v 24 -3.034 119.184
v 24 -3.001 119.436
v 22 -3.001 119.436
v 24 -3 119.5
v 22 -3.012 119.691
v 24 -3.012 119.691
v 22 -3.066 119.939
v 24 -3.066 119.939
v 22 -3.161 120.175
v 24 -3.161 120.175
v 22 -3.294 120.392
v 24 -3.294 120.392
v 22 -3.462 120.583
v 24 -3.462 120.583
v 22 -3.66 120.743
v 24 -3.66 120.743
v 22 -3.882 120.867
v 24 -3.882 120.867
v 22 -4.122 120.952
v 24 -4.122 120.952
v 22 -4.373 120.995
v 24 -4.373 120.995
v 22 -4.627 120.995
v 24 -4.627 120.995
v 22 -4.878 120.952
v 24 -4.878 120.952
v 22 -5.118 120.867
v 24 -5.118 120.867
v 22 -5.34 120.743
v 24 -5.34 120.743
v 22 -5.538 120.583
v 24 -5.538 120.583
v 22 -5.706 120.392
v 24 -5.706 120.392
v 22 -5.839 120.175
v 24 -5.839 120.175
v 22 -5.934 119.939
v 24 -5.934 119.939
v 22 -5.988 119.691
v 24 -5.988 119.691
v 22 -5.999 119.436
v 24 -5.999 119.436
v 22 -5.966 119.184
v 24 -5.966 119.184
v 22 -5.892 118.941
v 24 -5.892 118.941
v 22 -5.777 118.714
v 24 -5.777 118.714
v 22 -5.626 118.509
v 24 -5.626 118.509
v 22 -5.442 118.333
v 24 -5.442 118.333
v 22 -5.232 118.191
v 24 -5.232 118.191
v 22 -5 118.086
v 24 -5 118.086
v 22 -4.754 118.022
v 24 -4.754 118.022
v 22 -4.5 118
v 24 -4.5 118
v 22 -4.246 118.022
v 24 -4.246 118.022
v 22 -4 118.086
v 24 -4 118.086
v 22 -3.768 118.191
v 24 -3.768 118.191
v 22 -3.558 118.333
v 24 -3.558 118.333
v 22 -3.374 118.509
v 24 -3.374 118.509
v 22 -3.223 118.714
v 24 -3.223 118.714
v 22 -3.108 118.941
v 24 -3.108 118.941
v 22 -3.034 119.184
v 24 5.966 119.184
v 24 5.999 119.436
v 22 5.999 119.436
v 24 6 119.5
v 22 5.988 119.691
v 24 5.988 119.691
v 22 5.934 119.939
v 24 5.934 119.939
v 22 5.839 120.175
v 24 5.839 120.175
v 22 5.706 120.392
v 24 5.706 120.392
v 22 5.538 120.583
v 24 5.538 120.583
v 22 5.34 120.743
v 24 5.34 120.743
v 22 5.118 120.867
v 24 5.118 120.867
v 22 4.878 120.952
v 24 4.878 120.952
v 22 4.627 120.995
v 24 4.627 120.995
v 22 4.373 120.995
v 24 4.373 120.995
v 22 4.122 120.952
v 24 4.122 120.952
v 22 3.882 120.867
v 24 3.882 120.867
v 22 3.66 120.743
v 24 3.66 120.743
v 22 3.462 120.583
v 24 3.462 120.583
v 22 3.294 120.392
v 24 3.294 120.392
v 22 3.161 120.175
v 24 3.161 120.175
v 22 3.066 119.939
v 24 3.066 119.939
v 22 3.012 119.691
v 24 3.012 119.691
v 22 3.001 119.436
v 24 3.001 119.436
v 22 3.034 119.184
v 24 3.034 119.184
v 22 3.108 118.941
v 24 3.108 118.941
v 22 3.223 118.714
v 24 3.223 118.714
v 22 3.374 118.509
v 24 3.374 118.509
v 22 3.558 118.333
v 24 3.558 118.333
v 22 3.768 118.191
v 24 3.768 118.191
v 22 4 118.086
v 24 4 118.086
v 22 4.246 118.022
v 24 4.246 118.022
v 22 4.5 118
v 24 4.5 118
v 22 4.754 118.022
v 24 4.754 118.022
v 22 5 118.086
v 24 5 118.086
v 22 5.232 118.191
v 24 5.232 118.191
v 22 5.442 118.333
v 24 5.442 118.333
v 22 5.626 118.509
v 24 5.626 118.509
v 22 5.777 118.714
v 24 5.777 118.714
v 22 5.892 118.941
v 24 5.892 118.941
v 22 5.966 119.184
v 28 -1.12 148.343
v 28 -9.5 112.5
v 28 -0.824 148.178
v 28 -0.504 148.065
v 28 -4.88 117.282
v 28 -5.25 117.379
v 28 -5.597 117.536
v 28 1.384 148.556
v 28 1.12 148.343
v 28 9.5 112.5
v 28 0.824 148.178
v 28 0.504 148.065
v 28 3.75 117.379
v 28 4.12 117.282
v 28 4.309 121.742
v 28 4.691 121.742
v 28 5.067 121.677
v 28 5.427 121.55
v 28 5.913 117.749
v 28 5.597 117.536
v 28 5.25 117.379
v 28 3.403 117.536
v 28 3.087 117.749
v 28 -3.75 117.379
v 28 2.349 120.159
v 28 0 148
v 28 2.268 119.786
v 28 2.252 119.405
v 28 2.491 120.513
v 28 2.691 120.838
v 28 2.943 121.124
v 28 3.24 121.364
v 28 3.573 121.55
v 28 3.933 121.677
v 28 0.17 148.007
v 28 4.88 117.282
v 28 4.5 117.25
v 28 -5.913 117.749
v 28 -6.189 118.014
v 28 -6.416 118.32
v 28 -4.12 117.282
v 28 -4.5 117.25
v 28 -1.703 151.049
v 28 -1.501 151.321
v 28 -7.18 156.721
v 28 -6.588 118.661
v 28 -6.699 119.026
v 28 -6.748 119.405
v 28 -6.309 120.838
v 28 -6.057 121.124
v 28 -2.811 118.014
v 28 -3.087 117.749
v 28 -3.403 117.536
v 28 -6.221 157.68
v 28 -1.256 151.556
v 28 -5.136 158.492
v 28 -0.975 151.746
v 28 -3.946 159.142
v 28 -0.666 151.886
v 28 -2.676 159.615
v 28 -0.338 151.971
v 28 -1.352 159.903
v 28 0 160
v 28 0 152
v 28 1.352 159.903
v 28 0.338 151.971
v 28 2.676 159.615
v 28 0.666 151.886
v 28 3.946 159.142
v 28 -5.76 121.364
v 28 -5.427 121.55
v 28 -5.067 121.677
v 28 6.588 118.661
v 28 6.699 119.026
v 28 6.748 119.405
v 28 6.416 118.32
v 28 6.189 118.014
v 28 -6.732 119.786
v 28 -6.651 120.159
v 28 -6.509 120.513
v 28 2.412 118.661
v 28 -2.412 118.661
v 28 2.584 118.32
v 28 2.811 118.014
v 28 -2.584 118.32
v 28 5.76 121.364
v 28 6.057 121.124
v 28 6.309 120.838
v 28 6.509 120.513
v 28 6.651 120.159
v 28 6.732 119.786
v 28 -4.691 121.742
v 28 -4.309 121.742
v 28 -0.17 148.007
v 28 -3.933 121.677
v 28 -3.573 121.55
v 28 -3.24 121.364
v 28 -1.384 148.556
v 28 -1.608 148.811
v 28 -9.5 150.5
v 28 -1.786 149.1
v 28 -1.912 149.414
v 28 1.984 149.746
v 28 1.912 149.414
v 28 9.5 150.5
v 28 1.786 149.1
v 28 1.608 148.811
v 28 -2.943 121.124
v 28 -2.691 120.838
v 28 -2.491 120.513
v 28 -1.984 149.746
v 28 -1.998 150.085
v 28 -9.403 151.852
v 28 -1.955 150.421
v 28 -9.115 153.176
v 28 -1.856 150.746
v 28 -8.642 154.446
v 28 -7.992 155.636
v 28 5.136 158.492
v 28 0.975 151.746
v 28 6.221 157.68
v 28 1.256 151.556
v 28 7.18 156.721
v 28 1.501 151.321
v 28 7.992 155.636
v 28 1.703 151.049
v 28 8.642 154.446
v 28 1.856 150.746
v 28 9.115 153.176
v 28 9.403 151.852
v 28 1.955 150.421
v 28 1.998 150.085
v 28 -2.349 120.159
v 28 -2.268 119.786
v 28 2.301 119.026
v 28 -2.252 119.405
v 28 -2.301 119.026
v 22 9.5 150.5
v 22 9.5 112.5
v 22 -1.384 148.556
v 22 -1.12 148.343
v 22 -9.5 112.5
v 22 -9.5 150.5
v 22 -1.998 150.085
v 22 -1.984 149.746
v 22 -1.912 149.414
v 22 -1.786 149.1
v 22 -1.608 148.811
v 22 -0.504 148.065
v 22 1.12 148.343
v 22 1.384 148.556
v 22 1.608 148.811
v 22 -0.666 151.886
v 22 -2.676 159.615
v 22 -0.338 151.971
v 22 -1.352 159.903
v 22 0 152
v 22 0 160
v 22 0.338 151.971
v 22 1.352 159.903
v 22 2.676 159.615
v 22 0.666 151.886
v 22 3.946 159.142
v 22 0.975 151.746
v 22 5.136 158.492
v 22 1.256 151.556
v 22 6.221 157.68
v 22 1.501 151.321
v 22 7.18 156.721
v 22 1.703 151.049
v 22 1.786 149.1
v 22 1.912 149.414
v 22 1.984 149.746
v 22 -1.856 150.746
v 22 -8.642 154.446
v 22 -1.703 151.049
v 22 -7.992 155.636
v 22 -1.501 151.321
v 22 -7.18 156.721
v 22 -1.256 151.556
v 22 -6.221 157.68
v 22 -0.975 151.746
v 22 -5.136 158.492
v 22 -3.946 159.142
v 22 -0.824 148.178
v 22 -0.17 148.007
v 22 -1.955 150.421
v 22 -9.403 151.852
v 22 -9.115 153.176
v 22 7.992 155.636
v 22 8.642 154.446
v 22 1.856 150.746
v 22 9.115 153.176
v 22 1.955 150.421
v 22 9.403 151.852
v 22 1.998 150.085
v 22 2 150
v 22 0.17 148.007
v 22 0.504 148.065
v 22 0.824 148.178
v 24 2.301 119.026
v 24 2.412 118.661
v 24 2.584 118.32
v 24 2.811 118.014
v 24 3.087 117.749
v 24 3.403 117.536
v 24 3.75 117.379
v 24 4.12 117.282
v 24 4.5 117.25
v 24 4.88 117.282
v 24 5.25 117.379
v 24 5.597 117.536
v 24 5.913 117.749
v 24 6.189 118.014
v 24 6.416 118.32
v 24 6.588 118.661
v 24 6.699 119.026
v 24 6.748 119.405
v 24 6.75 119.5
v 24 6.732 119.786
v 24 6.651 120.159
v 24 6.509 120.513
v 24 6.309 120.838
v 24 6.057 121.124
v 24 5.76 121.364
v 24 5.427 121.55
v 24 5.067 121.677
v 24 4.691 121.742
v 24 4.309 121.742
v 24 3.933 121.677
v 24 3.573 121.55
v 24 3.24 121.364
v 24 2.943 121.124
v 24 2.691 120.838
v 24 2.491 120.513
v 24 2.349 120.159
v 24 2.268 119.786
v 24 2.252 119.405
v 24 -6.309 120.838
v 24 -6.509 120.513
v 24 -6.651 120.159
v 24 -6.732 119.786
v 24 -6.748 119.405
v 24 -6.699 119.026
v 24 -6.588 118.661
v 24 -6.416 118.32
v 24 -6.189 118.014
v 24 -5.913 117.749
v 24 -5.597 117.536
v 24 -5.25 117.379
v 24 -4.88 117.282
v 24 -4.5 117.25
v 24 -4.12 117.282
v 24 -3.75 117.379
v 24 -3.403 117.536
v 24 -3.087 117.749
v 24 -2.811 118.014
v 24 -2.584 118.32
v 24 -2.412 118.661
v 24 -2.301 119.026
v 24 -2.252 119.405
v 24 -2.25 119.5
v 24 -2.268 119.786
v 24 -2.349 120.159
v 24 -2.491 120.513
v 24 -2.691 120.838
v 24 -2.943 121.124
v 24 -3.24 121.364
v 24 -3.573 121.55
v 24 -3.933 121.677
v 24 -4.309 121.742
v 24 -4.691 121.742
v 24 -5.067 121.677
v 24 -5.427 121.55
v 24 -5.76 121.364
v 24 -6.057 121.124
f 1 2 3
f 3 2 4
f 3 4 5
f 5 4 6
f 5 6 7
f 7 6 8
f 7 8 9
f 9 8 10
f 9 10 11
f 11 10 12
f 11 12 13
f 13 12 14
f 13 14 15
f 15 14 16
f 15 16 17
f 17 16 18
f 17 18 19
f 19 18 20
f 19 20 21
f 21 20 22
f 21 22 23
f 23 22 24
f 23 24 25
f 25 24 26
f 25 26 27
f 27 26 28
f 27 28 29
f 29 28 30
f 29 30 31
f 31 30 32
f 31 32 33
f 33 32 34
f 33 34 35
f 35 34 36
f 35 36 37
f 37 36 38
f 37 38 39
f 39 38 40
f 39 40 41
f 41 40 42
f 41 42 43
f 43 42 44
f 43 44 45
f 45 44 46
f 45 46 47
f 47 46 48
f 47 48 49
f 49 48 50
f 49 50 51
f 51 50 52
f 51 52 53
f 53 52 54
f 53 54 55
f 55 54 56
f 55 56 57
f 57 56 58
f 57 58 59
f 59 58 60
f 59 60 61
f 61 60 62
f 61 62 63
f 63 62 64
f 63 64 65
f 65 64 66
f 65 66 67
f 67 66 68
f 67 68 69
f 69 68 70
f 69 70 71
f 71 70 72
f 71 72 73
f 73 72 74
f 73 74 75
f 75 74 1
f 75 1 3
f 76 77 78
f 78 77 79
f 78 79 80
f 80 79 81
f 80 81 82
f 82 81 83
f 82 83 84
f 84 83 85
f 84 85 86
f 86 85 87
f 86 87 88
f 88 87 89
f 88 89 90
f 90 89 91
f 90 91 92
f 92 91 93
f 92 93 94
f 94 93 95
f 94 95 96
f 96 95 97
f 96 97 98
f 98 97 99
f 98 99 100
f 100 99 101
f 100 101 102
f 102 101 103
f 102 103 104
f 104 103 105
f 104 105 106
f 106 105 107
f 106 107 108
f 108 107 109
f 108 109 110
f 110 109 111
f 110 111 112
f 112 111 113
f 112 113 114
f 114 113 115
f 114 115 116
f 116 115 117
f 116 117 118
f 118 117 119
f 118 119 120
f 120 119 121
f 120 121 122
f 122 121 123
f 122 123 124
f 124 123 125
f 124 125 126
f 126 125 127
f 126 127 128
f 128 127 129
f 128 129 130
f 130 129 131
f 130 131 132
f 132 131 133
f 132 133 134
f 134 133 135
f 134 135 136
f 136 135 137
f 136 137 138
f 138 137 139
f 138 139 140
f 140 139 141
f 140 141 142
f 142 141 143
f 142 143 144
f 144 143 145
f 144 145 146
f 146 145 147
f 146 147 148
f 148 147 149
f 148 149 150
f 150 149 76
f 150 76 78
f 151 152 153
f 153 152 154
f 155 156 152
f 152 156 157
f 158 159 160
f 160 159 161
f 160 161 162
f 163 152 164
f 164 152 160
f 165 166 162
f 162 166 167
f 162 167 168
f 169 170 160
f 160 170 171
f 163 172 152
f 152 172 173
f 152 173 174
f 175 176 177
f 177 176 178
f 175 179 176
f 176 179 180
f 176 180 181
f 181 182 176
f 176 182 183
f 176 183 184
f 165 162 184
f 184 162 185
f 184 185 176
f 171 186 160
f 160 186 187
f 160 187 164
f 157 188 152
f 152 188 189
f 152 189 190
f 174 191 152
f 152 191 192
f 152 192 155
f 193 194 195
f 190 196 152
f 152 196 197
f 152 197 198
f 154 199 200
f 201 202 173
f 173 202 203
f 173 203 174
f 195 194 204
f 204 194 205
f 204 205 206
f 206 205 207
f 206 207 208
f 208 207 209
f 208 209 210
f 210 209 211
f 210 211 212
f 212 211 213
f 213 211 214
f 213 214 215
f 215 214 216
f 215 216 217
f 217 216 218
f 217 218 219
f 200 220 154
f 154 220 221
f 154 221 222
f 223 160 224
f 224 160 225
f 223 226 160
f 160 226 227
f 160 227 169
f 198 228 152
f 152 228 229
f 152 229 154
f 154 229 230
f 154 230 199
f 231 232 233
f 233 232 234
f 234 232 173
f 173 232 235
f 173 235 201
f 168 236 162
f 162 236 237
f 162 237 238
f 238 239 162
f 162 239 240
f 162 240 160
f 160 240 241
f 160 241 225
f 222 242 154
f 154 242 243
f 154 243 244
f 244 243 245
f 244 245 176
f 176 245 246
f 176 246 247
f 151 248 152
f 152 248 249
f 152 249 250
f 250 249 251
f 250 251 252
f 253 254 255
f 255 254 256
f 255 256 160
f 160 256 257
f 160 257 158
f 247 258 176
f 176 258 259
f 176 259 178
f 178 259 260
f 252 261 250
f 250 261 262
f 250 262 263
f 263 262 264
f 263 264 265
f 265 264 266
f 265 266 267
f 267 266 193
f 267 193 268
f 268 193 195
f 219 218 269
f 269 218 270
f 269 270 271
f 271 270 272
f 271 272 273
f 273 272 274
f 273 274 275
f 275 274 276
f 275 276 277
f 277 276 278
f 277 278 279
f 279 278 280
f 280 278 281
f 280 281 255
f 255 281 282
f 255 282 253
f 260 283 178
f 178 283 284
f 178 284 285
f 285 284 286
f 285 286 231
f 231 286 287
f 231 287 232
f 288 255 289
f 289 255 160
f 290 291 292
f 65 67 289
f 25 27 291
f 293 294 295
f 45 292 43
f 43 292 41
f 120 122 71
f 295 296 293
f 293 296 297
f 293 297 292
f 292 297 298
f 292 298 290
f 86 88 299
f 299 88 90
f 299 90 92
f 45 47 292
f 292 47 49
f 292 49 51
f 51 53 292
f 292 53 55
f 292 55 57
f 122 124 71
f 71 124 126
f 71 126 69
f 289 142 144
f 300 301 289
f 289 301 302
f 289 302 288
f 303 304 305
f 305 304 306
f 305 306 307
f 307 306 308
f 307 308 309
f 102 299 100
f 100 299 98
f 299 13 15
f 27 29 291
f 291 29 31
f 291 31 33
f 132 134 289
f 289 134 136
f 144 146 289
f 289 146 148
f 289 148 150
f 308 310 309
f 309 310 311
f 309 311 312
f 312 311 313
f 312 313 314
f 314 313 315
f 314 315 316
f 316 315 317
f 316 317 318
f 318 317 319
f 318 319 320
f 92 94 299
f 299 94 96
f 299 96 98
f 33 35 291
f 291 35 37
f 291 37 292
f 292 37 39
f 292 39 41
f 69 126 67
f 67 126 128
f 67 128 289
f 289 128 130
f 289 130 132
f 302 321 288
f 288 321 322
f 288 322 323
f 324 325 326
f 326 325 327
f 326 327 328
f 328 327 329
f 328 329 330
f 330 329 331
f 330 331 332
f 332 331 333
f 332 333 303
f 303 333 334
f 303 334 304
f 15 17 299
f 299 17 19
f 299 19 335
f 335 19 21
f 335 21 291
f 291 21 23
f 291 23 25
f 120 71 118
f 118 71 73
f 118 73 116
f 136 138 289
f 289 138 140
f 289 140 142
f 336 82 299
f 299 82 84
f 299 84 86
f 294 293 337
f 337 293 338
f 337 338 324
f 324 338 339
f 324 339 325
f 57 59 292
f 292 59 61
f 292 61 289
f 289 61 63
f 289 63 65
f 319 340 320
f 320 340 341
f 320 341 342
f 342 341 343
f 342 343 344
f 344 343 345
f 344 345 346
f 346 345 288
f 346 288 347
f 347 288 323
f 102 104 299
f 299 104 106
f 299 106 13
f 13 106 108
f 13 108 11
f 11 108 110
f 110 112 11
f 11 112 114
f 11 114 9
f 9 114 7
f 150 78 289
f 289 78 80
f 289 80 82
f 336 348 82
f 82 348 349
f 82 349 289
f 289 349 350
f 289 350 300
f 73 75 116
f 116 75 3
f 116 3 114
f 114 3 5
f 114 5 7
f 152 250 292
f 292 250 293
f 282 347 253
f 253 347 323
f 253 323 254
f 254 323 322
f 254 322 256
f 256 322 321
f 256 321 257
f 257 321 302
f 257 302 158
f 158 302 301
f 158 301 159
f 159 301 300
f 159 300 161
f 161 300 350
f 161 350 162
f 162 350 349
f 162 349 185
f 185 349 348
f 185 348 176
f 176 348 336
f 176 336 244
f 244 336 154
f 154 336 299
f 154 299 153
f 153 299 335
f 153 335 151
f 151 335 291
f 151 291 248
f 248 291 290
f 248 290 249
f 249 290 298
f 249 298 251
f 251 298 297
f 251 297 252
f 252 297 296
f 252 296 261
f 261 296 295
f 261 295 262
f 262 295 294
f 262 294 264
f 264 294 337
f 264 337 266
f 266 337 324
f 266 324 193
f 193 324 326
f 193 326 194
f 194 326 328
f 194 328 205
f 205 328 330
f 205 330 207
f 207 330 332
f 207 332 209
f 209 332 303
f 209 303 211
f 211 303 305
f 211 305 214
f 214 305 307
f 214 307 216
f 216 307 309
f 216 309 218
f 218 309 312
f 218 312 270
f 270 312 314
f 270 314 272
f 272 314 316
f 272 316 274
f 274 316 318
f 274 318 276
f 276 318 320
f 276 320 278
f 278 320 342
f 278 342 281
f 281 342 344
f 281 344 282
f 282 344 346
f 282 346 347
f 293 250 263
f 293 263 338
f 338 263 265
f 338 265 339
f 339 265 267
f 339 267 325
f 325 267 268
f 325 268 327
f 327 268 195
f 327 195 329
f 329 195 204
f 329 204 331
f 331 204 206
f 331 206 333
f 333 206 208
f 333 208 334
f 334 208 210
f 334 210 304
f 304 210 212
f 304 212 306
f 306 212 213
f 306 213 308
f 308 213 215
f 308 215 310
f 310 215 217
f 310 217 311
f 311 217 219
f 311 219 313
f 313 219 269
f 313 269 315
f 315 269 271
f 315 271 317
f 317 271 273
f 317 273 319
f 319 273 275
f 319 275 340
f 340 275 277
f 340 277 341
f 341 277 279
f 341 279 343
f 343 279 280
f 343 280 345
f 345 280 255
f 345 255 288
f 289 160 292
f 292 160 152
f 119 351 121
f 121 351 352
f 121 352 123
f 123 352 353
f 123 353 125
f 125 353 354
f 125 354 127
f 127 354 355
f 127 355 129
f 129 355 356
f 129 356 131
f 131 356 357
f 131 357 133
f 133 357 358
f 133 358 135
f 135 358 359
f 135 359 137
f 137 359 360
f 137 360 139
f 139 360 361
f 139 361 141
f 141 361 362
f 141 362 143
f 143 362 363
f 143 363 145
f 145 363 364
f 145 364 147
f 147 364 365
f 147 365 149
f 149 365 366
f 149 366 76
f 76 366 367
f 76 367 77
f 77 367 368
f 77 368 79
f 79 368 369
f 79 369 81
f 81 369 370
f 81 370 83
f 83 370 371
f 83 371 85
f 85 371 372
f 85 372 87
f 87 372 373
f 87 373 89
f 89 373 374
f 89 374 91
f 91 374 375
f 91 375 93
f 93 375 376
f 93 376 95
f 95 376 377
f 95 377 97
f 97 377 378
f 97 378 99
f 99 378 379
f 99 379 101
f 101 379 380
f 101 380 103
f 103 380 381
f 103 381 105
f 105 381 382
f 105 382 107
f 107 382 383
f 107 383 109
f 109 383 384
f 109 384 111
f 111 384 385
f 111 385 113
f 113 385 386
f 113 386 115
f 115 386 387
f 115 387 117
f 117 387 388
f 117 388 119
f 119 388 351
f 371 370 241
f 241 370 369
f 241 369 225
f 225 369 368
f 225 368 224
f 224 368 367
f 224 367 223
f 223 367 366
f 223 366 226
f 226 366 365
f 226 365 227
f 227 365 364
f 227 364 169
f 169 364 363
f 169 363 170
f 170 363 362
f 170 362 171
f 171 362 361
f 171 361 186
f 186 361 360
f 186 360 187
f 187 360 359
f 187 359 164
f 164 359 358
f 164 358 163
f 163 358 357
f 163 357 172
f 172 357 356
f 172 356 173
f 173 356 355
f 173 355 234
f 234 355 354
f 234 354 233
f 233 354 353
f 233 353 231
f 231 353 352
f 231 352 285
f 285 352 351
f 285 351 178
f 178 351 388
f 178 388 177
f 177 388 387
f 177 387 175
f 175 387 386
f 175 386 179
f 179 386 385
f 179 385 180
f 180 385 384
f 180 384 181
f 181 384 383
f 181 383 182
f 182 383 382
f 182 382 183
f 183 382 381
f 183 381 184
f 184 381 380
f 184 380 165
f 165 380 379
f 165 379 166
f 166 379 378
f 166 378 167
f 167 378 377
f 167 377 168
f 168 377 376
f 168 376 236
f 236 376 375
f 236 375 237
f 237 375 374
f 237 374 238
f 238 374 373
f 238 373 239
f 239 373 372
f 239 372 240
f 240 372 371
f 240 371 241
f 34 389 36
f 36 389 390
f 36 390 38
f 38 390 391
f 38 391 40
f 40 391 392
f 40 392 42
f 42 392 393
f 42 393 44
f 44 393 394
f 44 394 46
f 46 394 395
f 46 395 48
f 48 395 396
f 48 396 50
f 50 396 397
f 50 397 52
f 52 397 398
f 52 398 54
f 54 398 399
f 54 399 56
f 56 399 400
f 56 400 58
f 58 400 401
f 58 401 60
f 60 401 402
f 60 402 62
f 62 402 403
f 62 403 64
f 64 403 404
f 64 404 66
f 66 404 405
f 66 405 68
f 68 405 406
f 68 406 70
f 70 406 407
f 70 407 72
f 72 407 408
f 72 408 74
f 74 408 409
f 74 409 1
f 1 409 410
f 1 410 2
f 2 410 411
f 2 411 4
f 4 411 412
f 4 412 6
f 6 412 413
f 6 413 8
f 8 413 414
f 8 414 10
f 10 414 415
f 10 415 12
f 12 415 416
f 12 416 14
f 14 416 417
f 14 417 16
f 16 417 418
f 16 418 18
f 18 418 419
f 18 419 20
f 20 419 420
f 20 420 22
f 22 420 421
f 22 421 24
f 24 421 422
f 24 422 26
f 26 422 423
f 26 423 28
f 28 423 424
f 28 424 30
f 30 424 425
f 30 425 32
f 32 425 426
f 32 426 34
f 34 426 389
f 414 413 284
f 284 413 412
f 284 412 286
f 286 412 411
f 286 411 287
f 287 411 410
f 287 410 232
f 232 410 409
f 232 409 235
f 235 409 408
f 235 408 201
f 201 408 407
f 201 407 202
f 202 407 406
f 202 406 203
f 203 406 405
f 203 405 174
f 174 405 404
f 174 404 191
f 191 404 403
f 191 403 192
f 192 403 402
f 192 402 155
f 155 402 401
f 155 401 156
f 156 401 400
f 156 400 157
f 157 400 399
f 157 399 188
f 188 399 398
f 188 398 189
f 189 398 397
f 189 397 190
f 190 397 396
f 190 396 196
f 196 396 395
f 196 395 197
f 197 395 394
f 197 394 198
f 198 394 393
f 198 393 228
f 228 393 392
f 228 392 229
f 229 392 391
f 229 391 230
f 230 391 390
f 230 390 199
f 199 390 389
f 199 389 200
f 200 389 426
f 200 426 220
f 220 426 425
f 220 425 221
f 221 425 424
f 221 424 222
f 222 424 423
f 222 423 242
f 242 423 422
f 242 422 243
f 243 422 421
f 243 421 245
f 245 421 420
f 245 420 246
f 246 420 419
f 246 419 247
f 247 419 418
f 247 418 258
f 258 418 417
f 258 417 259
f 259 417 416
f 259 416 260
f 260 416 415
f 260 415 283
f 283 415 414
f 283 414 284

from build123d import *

# Parameters (mm, degrees)
SKETCH_1_W            = 250
SKETCH_1_H            = 29
SKETCH_1_W_2          = 30
SKETCH_1_H_2          = 15
EXTRUDE_1_DEPTH       = 28
SKETCH_1_3_R          = 2
CUT_EXTRUDE_1_DEPTH   = 132.450561049
CUT_EXTRUDE_START     = 2
SKETCH_1_5_R          = 2
CUT_EXTRUDE_2_DEPTH   = 24
SKETCH_3_W            = 6
SKETCH_3_H            = 19
EXTRUDE_2_DEPTH       = 35
SKETCH_3_3_W          = 6
SKETCH_3_3_H          = 19
EXTRUDE_3_DEPTH       = 35
SKETCH_1_6_R          = 2
CUT_EXTRUDE_3_DEPTH   = 166.088612569
CUT_EXTRUDE_7_REACH   = 167.089
SKETCH_1_8_R          = 3.1
FILLET_1_R            = 9.5
FILLET_2_R            = 5
SKETCH_4_R            = 5.1
CUT_EXTRUDE_4_DEPTH   = 31.5
SKETCH_4_2_OUTSIDE_W  = 87.946
SKETCH_4_2_OUTSIDE_H  = 103.946
SKETCH_4_2_OUTSIDE_R  = 5.1
CUT_EXTRUDE_5_DEPTH   = 21.5
SKETCH_5_OUTSIDE_W    = 83.722
SKETCH_5_OUTSIDE_H    = 99.722
SKETCH_5_OUTSIDE_W_2  = 23.8
SKETCH_5_OUTSIDE_H_2  = 24.8
CUT_EXTRUDE_6_DEPTH   = 18
SKETCH_6_R            = 0.75
CUT_EXTRUDE_8_DEPTH   = 4
SKETCH_7_R            = 0.75
CUT_EXTRUDE_9_DEPTH   = 4
SKETCH_8_R            = 0.75
CUT_EXTRUDE_10_DEPTH  = 4
SKETCH_9_R            = 0.75
CUT_EXTRUDE_11_DEPTH  = 4
SKETCH_11_R           = 0.75
CUT_EXTRUDE_12_DEPTH  = 166.088612569
SKETCH_10_R           = 2
CUT_EXTRUDE_14_DEPTH  = 166.088612569
SKETCH_10_5_R         = 0.75
CUT_EXTRUDE_15_DEPTH  = 4.1
CUT_EXTRUDE_START_2   = -23.9
SKETCH_10_6_R         = 0.75
CUT_EXTRUDE_16_DEPTH  = 4.1
SKETCH_13_W           = 19.8
SKETCH_13_H           = 40
CUT_EXTRUDE_17_DEPTH  = 4.1
SKETCH_14_W           = 19.8
SKETCH_14_H           = 10
CUT_EXTRUDE_18_DEPTH  = 4.1
CUT_EXTRUDE_19_DEPTH  = 166.088612569
SKETCH_16_W           = 16
SKETCH_16_H           = 2.5
SKETCH_16_H_2         = 12.5
CUT_EXTRUDE_20_DEPTH  = 3
SKETCH_18_OUTSIDE_W   = 207.564
SKETCH_18_OUTSIDE_H   = 81.564
SKETCH_18_OUTSIDE_W_2 = 47.5
SKETCH_18_OUTSIDE_H_2 = 19
CUT_EXTRUDE_21_DEPTH  = 166.088612569
CUT_EXTRUDE_START_3   = -6
SKETCH_18_4_W         = 47.5
SKETCH_18_4_H         = 19
CUT_EXTRUDE_22_DEPTH  = 157.709096242
SKETCH_18_5_R         = 1.5
CUT_EXTRUDE_23_DEPTH  = 161.394046024
SKETCH_18_6_R         = 2.25
CUT_EXTRUDE_24_DEPTH  = 4


with BuildPart() as part:
    # 草图1 → 凸台-拉伸1 (new body)
    with BuildSketch(Plane(origin=(0, 0, 0), x_dir=(0, 0, -1), z_dir=(1, 0, 0))):
        Rectangle(SKETCH_1_W, SKETCH_1_H)
        with Locations((-60, 22)):
            Rectangle(SKETCH_1_W_2, SKETCH_1_H_2)
        with Locations((0, 22)):
            Rectangle(SKETCH_1_W_2, SKETCH_1_H_2)
        with Locations((60, 22)):
            Rectangle(SKETCH_1_W_2, SKETCH_1_H_2)
    extrude(amount=EXTRUDE_1_DEPTH)

    # 草图1<3> → 切除-拉伸1 (cut, through all)
    with BuildSketch(Plane(origin=(0, 0, 0), x_dir=(0, 0, -1), z_dir=(1, 0, 0))):
        with Locations((-67.5, -10.858617882)):
            Circle(SKETCH_1_3_R)
        with Locations((-22.5, -10.858617882)):
            Circle(SKETCH_1_3_R)
        with Locations((22.5, -10.858617882)):
            Circle(SKETCH_1_3_R)
        with Locations((-60, 25.5)):
            Circle(SKETCH_1_3_R)
        with Locations((67.5, -10.858617882)):
            Circle(SKETCH_1_3_R)
        with Locations((0, 25.5)):
            Circle(SKETCH_1_3_R)
        with Locations((60, 25.5)):
            Circle(SKETCH_1_3_R)
    extrude(amount=CUT_EXTRUDE_1_DEPTH, mode=Mode.SUBTRACT)

    # 草图1<5> → 切除-拉伸2 (cut)
    # profile 1 of 7: a face of its own
    with BuildSketch(Plane(origin=(0, 0, 0), x_dir=(0, 0, -1), z_dir=(1, 0, 0)).offset(CUT_EXTRUDE_START)):
        with BuildLine():
            Line((-72.5, 29.5), (-72.5, 25.5))
            ThreePointArc((-72.5, 25.5), (-60, 13), (-47.5, 25.5))
            Line((-47.5, 25.5), (-47.5, 29.5))
            Line((-47.5, 29.5), (-72.5, 29.5))
        make_face()
        with Locations((-60, 25.5)):
            Circle(SKETCH_1_5_R, mode=Mode.SUBTRACT)
    # profile 2 of 7: a face of its own
    with BuildSketch(Plane(origin=(0, 0, 0), x_dir=(0, 0, -1), z_dir=(1, 0, 0)).offset(CUT_EXTRUDE_START)):
        with BuildLine():
            Line((-79.457856675, -14.5), (-55.542143325, -14.5))
            ThreePointArc((-55.542143325, -14.5), (-67.5, 1.641382118), (-79.457856675, -14.5))
        make_face()
        with Locations((-67.5, -10.858617882)):
            Circle(SKETCH_1_5_R, mode=Mode.SUBTRACT)
    # profile 3 of 7: a face of its own
    with BuildSketch(Plane(origin=(0, 0, 0), x_dir=(0, 0, -1), z_dir=(1, 0, 0)).offset(CUT_EXTRUDE_START)):
        with BuildLine():
            Line((-34.457856675, -14.5), (-10.542143325, -14.5))
            ThreePointArc((-10.542143325, -14.5), (-22.5, 1.641382118), (-34.457856675, -14.5))
        make_face()
        with Locations((-22.5, -10.858617882)):
            Circle(SKETCH_1_5_R, mode=Mode.SUBTRACT)
    # profile 4 of 7: a face of its own
    with BuildSketch(Plane(origin=(0, 0, 0), x_dir=(0, 0, -1), z_dir=(1, 0, 0)).offset(CUT_EXTRUDE_START)):
        with BuildLine():
            ThreePointArc((-12.5, 25.5), (0, 13), (12.5, 25.5))
            Line((12.5, 25.5), (12.5, 29.5))
            Line((12.5, 29.5), (-12.5, 29.5))
            Line((-12.5, 29.5), (-12.5, 25.5))
        make_face()
        with Locations((0, 25.5)):
            Circle(SKETCH_1_5_R, mode=Mode.SUBTRACT)
    # profile 5 of 7: a face of its own
    with BuildSketch(Plane(origin=(0, 0, 0), x_dir=(0, 0, -1), z_dir=(1, 0, 0)).offset(CUT_EXTRUDE_START)):
        with BuildLine():
            Line((10.542143325, -14.5), (34.457856675, -14.5))
            ThreePointArc((34.457856675, -14.5), (22.5, 1.641382118), (10.542143325, -14.5))
        make_face()
        with Locations((22.5, -10.858617882)):
            Circle(SKETCH_1_5_R, mode=Mode.SUBTRACT)
    # profile 6 of 7: a face of its own
    with BuildSketch(Plane(origin=(0, 0, 0), x_dir=(0, 0, -1), z_dir=(1, 0, 0)).offset(CUT_EXTRUDE_START)):
        with BuildLine():
            Line((55.542143325, -14.5), (79.457856675, -14.5))
            ThreePointArc((79.457856675, -14.5), (67.5, 1.641382118), (55.542143325, -14.5))
        make_face()
        with Locations((67.5, -10.858617882)):
            Circle(SKETCH_1_5_R, mode=Mode.SUBTRACT)
    # profile 7 of 7: a face of its own
    with BuildSketch(Plane(origin=(0, 0, 0), x_dir=(0, 0, -1), z_dir=(1, 0, 0)).offset(CUT_EXTRUDE_START)):
        with BuildLine():
            ThreePointArc((47.5, 25.5), (60, 13), (72.5, 25.5))
            Line((72.5, 25.5), (72.5, 29.5))
            Line((72.5, 29.5), (47.5, 29.5))
            Line((47.5, 29.5), (47.5, 25.5))
        make_face()
        with Locations((60, 25.5)):
            Circle(SKETCH_1_5_R, mode=Mode.SUBTRACT)
    extrude(amount=CUT_EXTRUDE_2_DEPTH, mode=Mode.SUBTRACT)

    # 草图3 → 凸台-拉伸2 (add)
    with BuildSketch(Plane.XY.offset(125)):
        with Locations((25, 0)):
            Rectangle(SKETCH_3_W, SKETCH_3_H)
    extrude(amount=EXTRUDE_2_DEPTH)

    # 草图3<3> → 凸台-拉伸3 (add)
    with BuildSketch(Plane.XY.offset(125)):
        with Locations((25, 0)):
            Rectangle(SKETCH_3_3_W, SKETCH_3_3_H)
        with Locations((3, 0)):
            Rectangle(SKETCH_3_3_W, SKETCH_3_3_H)
    extrude(amount=EXTRUDE_3_DEPTH)

    # 草图1<6> → 切除-拉伸3 (cut, through all)
    with BuildSketch(Plane(origin=(0, 0, 0), x_dir=(0, 0, -1), z_dir=(1, 0, 0))):
        with Locations(Location((-150, 0, 0), (0, 0, 90))):
            Circle(SKETCH_1_6_R)
    extrude(amount=CUT_EXTRUDE_3_DEPTH, mode=Mode.SUBTRACT)

    # 草图1<8> → 切除-拉伸7 (cut, up to next)
    with BuildSketch(Plane(origin=(0, 0, 0), x_dir=(0, 0, -1), z_dir=(1, 0, 0)), mode=Mode.PRIVATE) as cut_extrude_7_sk1:
        with Locations(Location((-150, 0, 0), (0, 0, 180))):
            Circle(SKETCH_1_8_R)
    cut_extrude_7_tool1 = extrude(cut_extrude_7_sk1.sketch, amount=CUT_EXTRUDE_7_REACH, mode=Mode.PRIVATE) & part.part
    add(cut_extrude_7_tool1.solids().sort_by_distance((0, 0, 150))[0], mode=Mode.SUBTRACT)

    # 圆角1
    fillet_1_edges = [part.edges().sort_by_distance(p)[0] for p in [
        (25, 9.5, 160),
        (25, -9.5, 160),
        (3, -9.5, 160),
        (3, 9.5, 160),
    ]]
    fillet(fillet_1_edges, radius=FILLET_1_R - 0.0001)  # a hair under: the kernel refuses the full size

    # 圆角2
    fillet_2_edges = [part.edges().sort_by_distance(p)[0] for p in [
        (14, -14.5, 125),
        (14, 14.5, 125),
    ]]
    fillet(fillet_2_edges, radius=FILLET_2_R)

    # 草图4 → 切除-拉伸4 (cut)
    with BuildSketch(Plane(origin=(0, 0, -125), x_dir=(-1, 0, 0), z_dir=(0, 0, -1))):
        with Locations((-14, 0)):
            Circle(SKETCH_4_R)
    extrude(amount=-CUT_EXTRUDE_4_DEPTH, mode=Mode.SUBTRACT)

    # 草图4<2> outside → 切除-拉伸5 (cut)
    with BuildSketch(Plane(origin=(0, 0, -125), x_dir=(-1, 0, 0), z_dir=(0, 0, -1))):
        with Locations((-14, 7.5)):
            Rectangle(SKETCH_4_2_OUTSIDE_W, SKETCH_4_2_OUTSIDE_H)
        with Locations((-14, 0)):
            Circle(SKETCH_4_2_OUTSIDE_R, mode=Mode.SUBTRACT)
    extrude(amount=-CUT_EXTRUDE_5_DEPTH, mode=Mode.SUBTRACT)

    # 草图5 outside → 切除-拉伸6 (cut)
    with BuildSketch(Plane(origin=(0, 0, -103.5), x_dir=(-1, 0, 0), z_dir=(0, 0, -1))):
        with Locations((-14, 7.5)):
            Rectangle(SKETCH_5_OUTSIDE_W, SKETCH_5_OUTSIDE_H)
        with Locations((-14, 0)):
            Rectangle(SKETCH_5_OUTSIDE_W_2, SKETCH_5_OUTSIDE_H_2, mode=Mode.SUBTRACT)
    extrude(amount=-CUT_EXTRUDE_6_DEPTH, mode=Mode.SUBTRACT)

    # 草图6 → 切除-拉伸8 (cut)
    with BuildSketch(Plane(origin=(0, 14.5, 0), x_dir=(1, 0, 0), z_dir=(0, 1, 0))):
        with Locations(Location((7, 23.5, 0), (0, 0, 270))):
            Circle(SKETCH_6_R)
        with Locations(Location((21, 35.5, 0), (0, 0, 270))):
            Circle(SKETCH_6_R)
        with Locations(Location((7, -23.5, 0), (0, 0, 270))):
            Circle(SKETCH_6_R)
        with Locations(Location((21, -35.5, 0), (0, 0, 270))):
            Circle(SKETCH_6_R)
    extrude(amount=-CUT_EXTRUDE_8_DEPTH, mode=Mode.SUBTRACT)

    # 草图7 → 切除-拉伸9 (cut)
    with BuildSketch(Plane(origin=(0, 14.5, 0), x_dir=(1, 0, 0), z_dir=(0, 1, 0))):
        with Locations(Location((7, -89.5, 0), (0, 0, 270))):
            Circle(SKETCH_7_R)
        with Locations(Location((21.2, -110.5, 0), (0, 0, 270))):
            Circle(SKETCH_7_R)
    extrude(amount=-CUT_EXTRUDE_9_DEPTH, mode=Mode.SUBTRACT)

    # 草图8 → 切除-拉伸10 (cut)
    with BuildSketch(Plane.ZY):
        with Locations((47, 4)):
            Circle(SKETCH_8_R)
        with Locations((2.499047641, -1.5)):
            Circle(SKETCH_8_R)
    extrude(amount=-CUT_EXTRUDE_10_DEPTH, mode=Mode.SUBTRACT)

    # 草图9 → 切除-拉伸11 (cut)
    with BuildSketch(Plane(origin=(28, 0, 0), x_dir=(0, 0, -1), z_dir=(1, 0, 0))):
        with Locations((-107.5, -0.5)):
            Circle(SKETCH_9_R)
        with Locations((-92.5, -0.5)):
            Circle(SKETCH_9_R)
    extrude(amount=-CUT_EXTRUDE_11_DEPTH, mode=Mode.SUBTRACT)

    # 草图11 → 切除-拉伸12 (cut, through all)
    with BuildSketch(Plane(origin=(0, 0, 0), x_dir=(0, 0, -1), z_dir=(1, 0, 0))):
        with Locations((-14.530122053, 6.5)):
            Circle(SKETCH_11_R)
        with Locations((-1.081846191, -6.5)):
            Circle(SKETCH_11_R)
        with Locations((5.469877947, 6.5)):
            Circle(SKETCH_11_R)
    extrude(amount=CUT_EXTRUDE_12_DEPTH, mode=Mode.SUBTRACT)

    # 草图10 → 切除-拉伸14 (cut, through all)
    # profile 1 of 2: a face of its own
    with BuildSketch(Plane.ZY):
        Polygon((15, 14.5), (30, 14.5), (30, 45.542128626), (-140.458536671, 45.542128626), (-140.458536671, -65.636075395), (-10, -65.636075395), (-10, -14.5), (-85.5, -14.5), (-85.5, 14.5), (-75, 14.5), (-75, 29.5), (-45, 29.5), (-45, 14.5), (-15, 14.5), (-15, 29.5), (15, 29.5), align=None)
    # profile 2 of 2: a face of its own
    with BuildSketch(Plane.ZY):
        Polygon((-10, 14.5), (15, 14.5), (15, 29.5), (-15, 29.5), (-15, 14.5), (-45, 14.5), (-45, 29.5), (-75, 29.5), (-75, 14.5), (-85.5, 14.5), (-85.5, -14.5), (-10, -14.5), align=None)
        with Locations((-67.5, -10.858617882)):
            Circle(SKETCH_10_R, mode=Mode.SUBTRACT)
        with Locations((-22.5, -10.858617882)):
            Circle(SKETCH_10_R, mode=Mode.SUBTRACT)
        with Locations((-60, 25.5)):
            Circle(SKETCH_10_R, mode=Mode.SUBTRACT)
        with Locations((0, 25.5)):
            Circle(SKETCH_10_R, mode=Mode.SUBTRACT)
    extrude(amount=-CUT_EXTRUDE_14_DEPTH, mode=Mode.SUBTRACT)

    # 草图10<5> → 切除-拉伸15 (cut)
    with BuildSketch(Plane.ZY):
        Polygon((0, -14.5), (30, 14.5), (15, 14.5), (-10, 14.5), (-10, -14.5), align=None)
        with Locations((2.499047641, -1.5)):
            Circle(SKETCH_10_5_R, mode=Mode.SUBTRACT)
    extrude(amount=-CUT_EXTRUDE_15_DEPTH, mode=Mode.SUBTRACT)

    # 草图10<6> → 切除-拉伸16 (cut)
    # profile 1 of 2: a face of its own
    with BuildSketch(Plane.ZY.offset(CUT_EXTRUDE_START_2)):
        Polygon((0, -14.5), (30, 14.5), (15, 14.5), (-10, 14.5), (-10, -14.5), align=None)
        with Locations((2.499047641, -1.5)):
            Circle(SKETCH_10_6_R, mode=Mode.SUBTRACT)
    # profile 2 of 2: a face of its own
    with BuildSketch(Plane.ZY.offset(CUT_EXTRUDE_START_2)):
        with Locations((2.499047641, -1.5)):
            Circle(SKETCH_10_6_R)
    extrude(amount=-CUT_EXTRUDE_16_DEPTH, mode=Mode.SUBTRACT)

    # 草图13 → 切除-拉伸17 (cut)
    with BuildSketch(Plane(origin=(0, 14.5, 0), x_dir=(1, 0, 0), z_dir=(0, 1, 0))):
        with Locations((14, -10)):
            Rectangle(SKETCH_13_W, SKETCH_13_H)
    extrude(amount=-CUT_EXTRUDE_17_DEPTH, mode=Mode.SUBTRACT)

    # 草图14 → 切除-拉伸18 (cut)
    with BuildSketch(Plane.XZ.offset(14.5)):
        with Locations((14, -5)):
            Rectangle(SKETCH_14_W, SKETCH_14_H)
    extrude(amount=-CUT_EXTRUDE_18_DEPTH, mode=Mode.SUBTRACT)

    # 草图15 → 切除-拉伸19 (cut, through all)
    with BuildSketch(Plane.ZY):
        Polygon((0, -10.4), (0, -14.5), (4.24137931, -10.4), align=None)
    extrude(amount=-CUT_EXTRUDE_19_DEPTH, mode=Mode.SUBTRACT)

    # 草图16 → 切除-拉伸20 (cut)
    with BuildSketch(Plane(origin=(0, 29.5, 0), x_dir=(1, 0, 0), z_dir=(0, 1, 0))):
        with Locations((14, -76.25)):
            Rectangle(SKETCH_16_W, SKETCH_16_H)
        with Locations((14, -73.75)):
            Rectangle(SKETCH_16_W, SKETCH_16_H)
        with Locations((14, -66.25)):
            Rectangle(SKETCH_16_W, SKETCH_16_H_2)
    extrude(amount=-CUT_EXTRUDE_20_DEPTH, mode=Mode.SUBTRACT)

    # 草图18 outside → 切除-拉伸21 (cut, through all)
    with BuildSketch(Plane(origin=(28, 0, 0), x_dir=(0, 0, -1), z_dir=(1, 0, 0))):
        with Locations((-75, 7.5)):
            Rectangle(SKETCH_18_OUTSIDE_W, SKETCH_18_OUTSIDE_H)
        with Locations((-136.25, 0)):
            Rectangle(SKETCH_18_OUTSIDE_W_2, SKETCH_18_OUTSIDE_H_2, mode=Mode.SUBTRACT)
    extrude(amount=-CUT_EXTRUDE_21_DEPTH, mode=Mode.SUBTRACT)

    # 草图18<4> → 切除-拉伸22 (cut, through all)
    with BuildSketch(Plane(origin=(28, 0, 0), x_dir=(0, 0, -1), z_dir=(1, 0, 0)).offset(CUT_EXTRUDE_START_3)):
        with Locations((-136.25, 0)):
            Rectangle(SKETCH_18_4_W, SKETCH_18_4_H)
    extrude(amount=-CUT_EXTRUDE_22_DEPTH, mode=Mode.SUBTRACT)

    # 草图18<5> → 切除-拉伸23 (cut, through all)
    with BuildSketch(Plane(origin=(28, 0, 0), x_dir=(0, 0, -1), z_dir=(1, 0, 0))):
        with Locations((-119.5, 4.5)):
            Circle(SKETCH_18_5_R)
        with Locations((-119.5, -4.5)):
            Circle(SKETCH_18_5_R)
    extrude(amount=-CUT_EXTRUDE_23_DEPTH, mode=Mode.SUBTRACT)

    # 草图18<6> → 切除-拉伸24 (cut)
    with BuildSketch(Plane(origin=(28, 0, 0), x_dir=(0, 0, -1), z_dir=(1, 0, 0))):
        with Locations((-119.5, 4.5)):
            Circle(SKETCH_18_6_R)
        with Locations((-119.5, -4.5)):
            Circle(SKETCH_18_6_R)
    extrude(amount=-CUT_EXTRUDE_24_DEPTH, mode=Mode.SUBTRACT)


solid = part.part
